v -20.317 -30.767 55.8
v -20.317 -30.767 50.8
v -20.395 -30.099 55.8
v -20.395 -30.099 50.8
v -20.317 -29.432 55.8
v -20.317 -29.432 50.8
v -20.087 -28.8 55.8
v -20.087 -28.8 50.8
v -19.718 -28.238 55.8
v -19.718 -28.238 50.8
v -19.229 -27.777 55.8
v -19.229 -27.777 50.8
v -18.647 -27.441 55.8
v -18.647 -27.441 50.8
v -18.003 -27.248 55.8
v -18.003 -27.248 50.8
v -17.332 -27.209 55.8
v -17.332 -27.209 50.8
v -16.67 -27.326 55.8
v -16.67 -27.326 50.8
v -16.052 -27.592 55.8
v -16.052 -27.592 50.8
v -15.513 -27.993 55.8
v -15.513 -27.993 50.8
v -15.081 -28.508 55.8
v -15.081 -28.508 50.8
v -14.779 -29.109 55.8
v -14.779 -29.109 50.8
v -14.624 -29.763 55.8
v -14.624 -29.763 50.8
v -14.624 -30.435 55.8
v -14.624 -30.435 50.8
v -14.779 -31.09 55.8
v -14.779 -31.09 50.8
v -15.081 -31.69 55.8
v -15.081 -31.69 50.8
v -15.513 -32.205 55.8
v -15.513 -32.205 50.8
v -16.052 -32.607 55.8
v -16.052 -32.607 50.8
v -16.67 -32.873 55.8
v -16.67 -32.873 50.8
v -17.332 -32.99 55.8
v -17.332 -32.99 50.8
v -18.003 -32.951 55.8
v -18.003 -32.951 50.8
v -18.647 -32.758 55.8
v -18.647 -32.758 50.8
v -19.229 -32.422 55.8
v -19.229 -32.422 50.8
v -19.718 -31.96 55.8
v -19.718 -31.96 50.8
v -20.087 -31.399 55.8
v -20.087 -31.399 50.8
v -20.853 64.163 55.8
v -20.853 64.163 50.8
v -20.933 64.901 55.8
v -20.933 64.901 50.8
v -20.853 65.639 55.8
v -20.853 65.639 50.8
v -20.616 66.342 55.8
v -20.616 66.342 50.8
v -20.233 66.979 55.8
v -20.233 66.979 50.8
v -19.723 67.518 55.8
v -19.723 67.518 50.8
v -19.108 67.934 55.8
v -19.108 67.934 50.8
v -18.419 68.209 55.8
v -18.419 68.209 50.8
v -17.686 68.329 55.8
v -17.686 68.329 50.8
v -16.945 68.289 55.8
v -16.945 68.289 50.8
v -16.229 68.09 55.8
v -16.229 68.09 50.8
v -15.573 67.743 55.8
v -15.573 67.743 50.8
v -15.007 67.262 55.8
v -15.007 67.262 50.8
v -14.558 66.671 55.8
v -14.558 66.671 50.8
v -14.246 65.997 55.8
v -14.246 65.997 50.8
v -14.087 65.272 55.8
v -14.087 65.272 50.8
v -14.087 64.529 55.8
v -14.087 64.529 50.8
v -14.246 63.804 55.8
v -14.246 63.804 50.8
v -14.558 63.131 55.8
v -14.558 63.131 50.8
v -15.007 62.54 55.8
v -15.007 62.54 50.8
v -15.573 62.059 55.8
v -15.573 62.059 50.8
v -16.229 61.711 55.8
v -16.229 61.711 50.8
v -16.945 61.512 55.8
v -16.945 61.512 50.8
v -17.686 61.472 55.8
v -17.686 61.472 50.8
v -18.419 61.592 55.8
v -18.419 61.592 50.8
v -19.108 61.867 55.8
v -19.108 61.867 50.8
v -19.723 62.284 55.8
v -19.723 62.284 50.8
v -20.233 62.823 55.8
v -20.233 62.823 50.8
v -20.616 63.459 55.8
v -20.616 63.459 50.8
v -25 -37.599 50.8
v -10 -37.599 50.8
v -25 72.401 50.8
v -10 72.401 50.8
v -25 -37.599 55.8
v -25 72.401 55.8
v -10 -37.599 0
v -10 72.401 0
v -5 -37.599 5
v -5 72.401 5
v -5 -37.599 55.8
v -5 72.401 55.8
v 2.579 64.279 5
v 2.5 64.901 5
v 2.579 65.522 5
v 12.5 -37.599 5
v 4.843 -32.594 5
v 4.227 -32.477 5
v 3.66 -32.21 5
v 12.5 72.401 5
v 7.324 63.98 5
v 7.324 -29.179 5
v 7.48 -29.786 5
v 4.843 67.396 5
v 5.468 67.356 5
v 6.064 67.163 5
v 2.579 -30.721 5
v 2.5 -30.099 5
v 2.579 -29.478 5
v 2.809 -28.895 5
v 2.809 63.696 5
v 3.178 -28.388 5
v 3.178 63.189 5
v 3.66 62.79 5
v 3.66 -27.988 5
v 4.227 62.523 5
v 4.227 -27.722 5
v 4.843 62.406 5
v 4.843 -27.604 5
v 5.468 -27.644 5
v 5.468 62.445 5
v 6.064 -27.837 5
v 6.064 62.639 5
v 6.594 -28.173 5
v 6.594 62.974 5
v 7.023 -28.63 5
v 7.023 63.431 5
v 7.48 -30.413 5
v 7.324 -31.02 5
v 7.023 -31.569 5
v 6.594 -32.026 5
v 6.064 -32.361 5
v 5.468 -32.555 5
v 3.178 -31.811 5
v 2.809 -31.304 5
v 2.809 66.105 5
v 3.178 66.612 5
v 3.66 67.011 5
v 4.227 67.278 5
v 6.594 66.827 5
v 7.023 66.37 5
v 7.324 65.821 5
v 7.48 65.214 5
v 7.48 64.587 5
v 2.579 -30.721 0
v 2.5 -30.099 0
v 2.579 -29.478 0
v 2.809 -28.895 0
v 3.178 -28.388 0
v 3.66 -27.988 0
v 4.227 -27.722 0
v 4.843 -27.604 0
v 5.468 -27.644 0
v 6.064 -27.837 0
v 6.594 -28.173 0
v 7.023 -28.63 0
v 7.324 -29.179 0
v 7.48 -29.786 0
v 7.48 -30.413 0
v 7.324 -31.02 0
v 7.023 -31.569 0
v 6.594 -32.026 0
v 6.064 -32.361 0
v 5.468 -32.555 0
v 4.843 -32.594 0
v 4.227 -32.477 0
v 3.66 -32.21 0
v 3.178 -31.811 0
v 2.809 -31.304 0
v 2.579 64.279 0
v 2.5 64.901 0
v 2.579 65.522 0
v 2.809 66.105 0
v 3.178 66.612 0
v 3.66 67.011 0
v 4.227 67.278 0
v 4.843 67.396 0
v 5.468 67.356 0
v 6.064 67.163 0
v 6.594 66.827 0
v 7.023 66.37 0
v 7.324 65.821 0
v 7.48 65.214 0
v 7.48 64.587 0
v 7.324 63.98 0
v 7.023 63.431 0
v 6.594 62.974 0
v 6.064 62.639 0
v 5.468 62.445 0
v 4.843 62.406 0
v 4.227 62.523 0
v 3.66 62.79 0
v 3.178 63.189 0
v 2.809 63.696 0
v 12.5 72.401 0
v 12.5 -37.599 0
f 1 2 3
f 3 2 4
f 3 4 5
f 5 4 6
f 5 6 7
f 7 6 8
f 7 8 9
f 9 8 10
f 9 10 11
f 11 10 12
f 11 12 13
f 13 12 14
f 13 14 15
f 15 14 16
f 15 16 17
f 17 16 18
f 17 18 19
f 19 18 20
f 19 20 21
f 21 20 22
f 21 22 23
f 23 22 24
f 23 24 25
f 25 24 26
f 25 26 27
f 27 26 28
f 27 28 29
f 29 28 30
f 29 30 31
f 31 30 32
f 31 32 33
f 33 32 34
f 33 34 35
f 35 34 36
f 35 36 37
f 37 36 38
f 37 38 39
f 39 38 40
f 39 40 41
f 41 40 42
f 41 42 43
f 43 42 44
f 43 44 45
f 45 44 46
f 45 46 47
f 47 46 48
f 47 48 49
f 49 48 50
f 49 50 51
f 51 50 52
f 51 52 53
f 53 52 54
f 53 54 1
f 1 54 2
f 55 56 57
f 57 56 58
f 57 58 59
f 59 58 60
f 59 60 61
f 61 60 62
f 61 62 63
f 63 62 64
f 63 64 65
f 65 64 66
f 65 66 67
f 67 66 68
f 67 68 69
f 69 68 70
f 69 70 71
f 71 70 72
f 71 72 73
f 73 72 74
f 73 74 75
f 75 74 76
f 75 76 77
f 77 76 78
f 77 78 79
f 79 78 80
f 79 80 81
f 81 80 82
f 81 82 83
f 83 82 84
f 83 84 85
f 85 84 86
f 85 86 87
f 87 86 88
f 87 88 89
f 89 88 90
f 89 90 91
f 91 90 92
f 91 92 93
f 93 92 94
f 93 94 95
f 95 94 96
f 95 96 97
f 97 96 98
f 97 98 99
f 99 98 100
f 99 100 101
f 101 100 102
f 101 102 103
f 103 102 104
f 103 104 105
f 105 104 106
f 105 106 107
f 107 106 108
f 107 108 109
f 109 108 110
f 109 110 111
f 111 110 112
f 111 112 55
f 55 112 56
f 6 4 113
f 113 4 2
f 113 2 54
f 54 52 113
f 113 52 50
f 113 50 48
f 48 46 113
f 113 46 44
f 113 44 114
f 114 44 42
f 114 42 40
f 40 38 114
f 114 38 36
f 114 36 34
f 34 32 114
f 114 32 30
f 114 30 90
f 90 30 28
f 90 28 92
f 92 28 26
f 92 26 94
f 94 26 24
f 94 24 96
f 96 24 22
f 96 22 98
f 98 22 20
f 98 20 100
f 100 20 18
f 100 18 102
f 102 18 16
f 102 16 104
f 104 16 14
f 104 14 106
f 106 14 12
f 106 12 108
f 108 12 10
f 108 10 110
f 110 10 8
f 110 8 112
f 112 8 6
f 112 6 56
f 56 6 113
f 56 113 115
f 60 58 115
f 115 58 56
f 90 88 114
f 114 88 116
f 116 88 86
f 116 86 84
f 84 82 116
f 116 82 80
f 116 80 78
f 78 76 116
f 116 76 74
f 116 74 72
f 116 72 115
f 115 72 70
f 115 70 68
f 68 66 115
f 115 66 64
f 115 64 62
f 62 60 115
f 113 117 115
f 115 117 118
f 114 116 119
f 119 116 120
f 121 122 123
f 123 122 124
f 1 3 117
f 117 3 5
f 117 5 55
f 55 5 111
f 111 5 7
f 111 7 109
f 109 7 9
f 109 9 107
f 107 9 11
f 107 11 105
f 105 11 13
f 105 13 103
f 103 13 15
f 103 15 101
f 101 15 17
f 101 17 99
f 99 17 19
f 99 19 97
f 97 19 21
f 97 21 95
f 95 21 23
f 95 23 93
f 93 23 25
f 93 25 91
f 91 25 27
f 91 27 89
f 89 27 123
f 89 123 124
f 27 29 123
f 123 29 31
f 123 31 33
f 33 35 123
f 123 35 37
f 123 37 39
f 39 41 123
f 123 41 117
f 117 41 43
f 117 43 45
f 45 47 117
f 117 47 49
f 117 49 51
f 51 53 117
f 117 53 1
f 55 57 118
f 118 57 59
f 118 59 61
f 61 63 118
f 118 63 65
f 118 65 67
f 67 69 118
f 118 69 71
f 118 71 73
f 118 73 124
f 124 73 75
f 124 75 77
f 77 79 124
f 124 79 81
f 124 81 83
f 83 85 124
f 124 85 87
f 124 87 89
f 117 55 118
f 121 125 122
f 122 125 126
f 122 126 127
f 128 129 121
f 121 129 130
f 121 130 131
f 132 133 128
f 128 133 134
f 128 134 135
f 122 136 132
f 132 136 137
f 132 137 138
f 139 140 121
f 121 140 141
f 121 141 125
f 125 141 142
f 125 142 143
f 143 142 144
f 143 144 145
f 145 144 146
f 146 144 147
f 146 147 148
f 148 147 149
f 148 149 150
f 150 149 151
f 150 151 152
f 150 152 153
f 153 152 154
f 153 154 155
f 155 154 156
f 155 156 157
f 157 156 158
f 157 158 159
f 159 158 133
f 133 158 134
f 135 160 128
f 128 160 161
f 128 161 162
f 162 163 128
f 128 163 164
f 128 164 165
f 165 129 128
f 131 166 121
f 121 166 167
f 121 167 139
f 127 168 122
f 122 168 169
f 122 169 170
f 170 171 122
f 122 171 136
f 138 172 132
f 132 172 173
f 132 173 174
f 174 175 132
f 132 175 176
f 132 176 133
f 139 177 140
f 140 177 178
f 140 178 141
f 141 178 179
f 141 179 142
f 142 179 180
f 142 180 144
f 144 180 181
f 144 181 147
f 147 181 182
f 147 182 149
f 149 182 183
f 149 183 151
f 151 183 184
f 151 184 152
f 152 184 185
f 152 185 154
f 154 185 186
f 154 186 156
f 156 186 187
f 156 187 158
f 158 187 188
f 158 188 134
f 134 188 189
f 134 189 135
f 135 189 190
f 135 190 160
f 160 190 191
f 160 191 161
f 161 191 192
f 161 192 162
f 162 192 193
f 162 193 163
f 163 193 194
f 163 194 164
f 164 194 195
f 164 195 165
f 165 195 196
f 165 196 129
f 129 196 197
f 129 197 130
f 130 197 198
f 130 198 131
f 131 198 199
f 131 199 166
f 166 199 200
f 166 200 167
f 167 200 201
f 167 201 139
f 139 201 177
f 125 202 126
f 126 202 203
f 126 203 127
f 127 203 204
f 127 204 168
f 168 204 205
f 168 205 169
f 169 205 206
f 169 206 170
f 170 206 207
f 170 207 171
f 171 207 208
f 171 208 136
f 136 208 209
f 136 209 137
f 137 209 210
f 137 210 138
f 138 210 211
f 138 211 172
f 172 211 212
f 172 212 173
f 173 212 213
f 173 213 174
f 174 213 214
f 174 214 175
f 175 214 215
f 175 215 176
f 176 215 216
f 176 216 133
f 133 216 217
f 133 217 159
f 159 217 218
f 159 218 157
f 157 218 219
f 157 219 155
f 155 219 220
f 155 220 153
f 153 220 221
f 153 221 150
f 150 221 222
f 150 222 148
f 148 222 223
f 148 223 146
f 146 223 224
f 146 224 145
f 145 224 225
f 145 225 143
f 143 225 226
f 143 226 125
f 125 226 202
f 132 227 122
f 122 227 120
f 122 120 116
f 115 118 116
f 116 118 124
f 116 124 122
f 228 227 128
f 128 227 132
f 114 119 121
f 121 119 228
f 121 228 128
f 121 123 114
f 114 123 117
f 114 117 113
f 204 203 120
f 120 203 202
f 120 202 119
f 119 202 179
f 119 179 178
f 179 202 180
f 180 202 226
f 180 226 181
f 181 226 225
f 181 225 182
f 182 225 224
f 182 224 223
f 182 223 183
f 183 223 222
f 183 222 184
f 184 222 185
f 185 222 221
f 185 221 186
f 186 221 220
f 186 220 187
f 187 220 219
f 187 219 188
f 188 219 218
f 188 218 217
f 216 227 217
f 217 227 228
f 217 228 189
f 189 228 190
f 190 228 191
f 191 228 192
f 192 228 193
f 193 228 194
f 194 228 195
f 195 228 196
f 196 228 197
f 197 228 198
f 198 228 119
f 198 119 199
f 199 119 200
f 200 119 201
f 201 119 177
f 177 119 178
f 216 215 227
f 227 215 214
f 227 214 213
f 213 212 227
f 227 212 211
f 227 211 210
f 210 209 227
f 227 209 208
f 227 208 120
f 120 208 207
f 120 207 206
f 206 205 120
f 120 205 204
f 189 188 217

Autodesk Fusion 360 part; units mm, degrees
sketch "Sketch1" plane through (0, 0, 0) normal (0, 0, 1) x (1, 0, 0)
  line L0 (-10, 72.4007) -> (12.5, 72.4007)
  line L1 (12.5, 72.4007) -> (12.5, -37.5993)
  line L2 (12.5, -37.5993) -> (-10, -37.5993)
  line L3 (-10, -37.5993) -> (-10, 72.4007)
  circle A0 centre (5, 64.9007) radius 2.5
  circle A1 centre (5, -30.0993) radius 2.5
  dimension "d1" = 5
  dimension "d2" = 5
  dimension "d3" = 95
  dimension "d4" = 15
  dimension "d5" = 7.5
  dimension "d6" = 7.5
  dimension "d7" = 7.5
extrude "Extrude1" add sketch "Sketch1" along normal blind 5
sketch "Sketch2" plane through (0, 0, 5) normal (0, 0, 1) x (-1, 0, 0)
  circle A0 centre (-5, -64.9007) radius 2.5
  circle A1 centre (-5, 30.0993) radius 2.5
  line L0 (10, 37.5993) -> (-12.5, 37.5993)
  line L1 (-12.5, 37.5993) -> (-12.5, -72.4007)
  line L2 (-12.5, -72.4007) -> (10, -72.4007)
  line L3 (10, -72.4007) -> (10, 37.5993)
  line L4 (10, -72.4007) -> (5, -72.4007)
  line L5 (5, -72.4007) -> (5, 37.5993)
  line L6 (5, 37.5993) -> (10, 37.5993)
  line L7 (10, 37.5993) -> (10, -72.4007)
  dimension "d10" = 5
extrude "Extrude2" add sketch "Sketch2" along normal blind 50.8 contours L0 L2 L3 L4 L5 L6 L7
sketch "Sketch3" plane through (-10, 0, 0) normal (-1, 0, 0) x (0, -1, 0)
  line L0 (-72.4007, 0) -> (37.5993, 0)
  line L1 (37.5993, 0) -> (37.5993, 55.8)
  line L2 (37.5993, 55.8) -> (-72.4007, 55.8)
  line L3 (-72.4007, 55.8) -> (-72.4007, 0)
  line L4 (-72.4007, 55.8) -> (37.5993, 55.8)
  line L5 (37.5993, 55.8) -> (37.5993, 50.8)
  line L6 (37.5993, 50.8) -> (-72.4007, 50.8)
  line L7 (-72.4007, 50.8) -> (-72.4007, 55.8)
  dimension "d13" = 5
extrude "Extrude3" add sketch "Sketch3" along normal blind 15 contours L1 L2 L3 L4 L5 L6 L7
sketch "Sketch4" plane through (0, 0, 50.8) normal (0, 0, -1) x (1, 0, 0)
  line L0 (-10, -72.4007) -> (-10, 37.5993)
  line L1 (-10, 37.5993) -> (-25, 37.5993)
  line L2 (-25, 37.5993) -> (-25, -72.4007)
  line L3 (-25, -72.4007) -> (-10, -72.4007)
  circle A0 centre (-17.5, 30.0993) radius 2.8953
  circle A1 centre (-17.5, -64.9007) radius 3.4334
  dimension "d16" = 95
  dimension "d17" = 7.5
  dimension "d18" = 7.5
extrude "Extrude4" cut sketch "Sketch4" against normal blind 20 contours A0 | A1
